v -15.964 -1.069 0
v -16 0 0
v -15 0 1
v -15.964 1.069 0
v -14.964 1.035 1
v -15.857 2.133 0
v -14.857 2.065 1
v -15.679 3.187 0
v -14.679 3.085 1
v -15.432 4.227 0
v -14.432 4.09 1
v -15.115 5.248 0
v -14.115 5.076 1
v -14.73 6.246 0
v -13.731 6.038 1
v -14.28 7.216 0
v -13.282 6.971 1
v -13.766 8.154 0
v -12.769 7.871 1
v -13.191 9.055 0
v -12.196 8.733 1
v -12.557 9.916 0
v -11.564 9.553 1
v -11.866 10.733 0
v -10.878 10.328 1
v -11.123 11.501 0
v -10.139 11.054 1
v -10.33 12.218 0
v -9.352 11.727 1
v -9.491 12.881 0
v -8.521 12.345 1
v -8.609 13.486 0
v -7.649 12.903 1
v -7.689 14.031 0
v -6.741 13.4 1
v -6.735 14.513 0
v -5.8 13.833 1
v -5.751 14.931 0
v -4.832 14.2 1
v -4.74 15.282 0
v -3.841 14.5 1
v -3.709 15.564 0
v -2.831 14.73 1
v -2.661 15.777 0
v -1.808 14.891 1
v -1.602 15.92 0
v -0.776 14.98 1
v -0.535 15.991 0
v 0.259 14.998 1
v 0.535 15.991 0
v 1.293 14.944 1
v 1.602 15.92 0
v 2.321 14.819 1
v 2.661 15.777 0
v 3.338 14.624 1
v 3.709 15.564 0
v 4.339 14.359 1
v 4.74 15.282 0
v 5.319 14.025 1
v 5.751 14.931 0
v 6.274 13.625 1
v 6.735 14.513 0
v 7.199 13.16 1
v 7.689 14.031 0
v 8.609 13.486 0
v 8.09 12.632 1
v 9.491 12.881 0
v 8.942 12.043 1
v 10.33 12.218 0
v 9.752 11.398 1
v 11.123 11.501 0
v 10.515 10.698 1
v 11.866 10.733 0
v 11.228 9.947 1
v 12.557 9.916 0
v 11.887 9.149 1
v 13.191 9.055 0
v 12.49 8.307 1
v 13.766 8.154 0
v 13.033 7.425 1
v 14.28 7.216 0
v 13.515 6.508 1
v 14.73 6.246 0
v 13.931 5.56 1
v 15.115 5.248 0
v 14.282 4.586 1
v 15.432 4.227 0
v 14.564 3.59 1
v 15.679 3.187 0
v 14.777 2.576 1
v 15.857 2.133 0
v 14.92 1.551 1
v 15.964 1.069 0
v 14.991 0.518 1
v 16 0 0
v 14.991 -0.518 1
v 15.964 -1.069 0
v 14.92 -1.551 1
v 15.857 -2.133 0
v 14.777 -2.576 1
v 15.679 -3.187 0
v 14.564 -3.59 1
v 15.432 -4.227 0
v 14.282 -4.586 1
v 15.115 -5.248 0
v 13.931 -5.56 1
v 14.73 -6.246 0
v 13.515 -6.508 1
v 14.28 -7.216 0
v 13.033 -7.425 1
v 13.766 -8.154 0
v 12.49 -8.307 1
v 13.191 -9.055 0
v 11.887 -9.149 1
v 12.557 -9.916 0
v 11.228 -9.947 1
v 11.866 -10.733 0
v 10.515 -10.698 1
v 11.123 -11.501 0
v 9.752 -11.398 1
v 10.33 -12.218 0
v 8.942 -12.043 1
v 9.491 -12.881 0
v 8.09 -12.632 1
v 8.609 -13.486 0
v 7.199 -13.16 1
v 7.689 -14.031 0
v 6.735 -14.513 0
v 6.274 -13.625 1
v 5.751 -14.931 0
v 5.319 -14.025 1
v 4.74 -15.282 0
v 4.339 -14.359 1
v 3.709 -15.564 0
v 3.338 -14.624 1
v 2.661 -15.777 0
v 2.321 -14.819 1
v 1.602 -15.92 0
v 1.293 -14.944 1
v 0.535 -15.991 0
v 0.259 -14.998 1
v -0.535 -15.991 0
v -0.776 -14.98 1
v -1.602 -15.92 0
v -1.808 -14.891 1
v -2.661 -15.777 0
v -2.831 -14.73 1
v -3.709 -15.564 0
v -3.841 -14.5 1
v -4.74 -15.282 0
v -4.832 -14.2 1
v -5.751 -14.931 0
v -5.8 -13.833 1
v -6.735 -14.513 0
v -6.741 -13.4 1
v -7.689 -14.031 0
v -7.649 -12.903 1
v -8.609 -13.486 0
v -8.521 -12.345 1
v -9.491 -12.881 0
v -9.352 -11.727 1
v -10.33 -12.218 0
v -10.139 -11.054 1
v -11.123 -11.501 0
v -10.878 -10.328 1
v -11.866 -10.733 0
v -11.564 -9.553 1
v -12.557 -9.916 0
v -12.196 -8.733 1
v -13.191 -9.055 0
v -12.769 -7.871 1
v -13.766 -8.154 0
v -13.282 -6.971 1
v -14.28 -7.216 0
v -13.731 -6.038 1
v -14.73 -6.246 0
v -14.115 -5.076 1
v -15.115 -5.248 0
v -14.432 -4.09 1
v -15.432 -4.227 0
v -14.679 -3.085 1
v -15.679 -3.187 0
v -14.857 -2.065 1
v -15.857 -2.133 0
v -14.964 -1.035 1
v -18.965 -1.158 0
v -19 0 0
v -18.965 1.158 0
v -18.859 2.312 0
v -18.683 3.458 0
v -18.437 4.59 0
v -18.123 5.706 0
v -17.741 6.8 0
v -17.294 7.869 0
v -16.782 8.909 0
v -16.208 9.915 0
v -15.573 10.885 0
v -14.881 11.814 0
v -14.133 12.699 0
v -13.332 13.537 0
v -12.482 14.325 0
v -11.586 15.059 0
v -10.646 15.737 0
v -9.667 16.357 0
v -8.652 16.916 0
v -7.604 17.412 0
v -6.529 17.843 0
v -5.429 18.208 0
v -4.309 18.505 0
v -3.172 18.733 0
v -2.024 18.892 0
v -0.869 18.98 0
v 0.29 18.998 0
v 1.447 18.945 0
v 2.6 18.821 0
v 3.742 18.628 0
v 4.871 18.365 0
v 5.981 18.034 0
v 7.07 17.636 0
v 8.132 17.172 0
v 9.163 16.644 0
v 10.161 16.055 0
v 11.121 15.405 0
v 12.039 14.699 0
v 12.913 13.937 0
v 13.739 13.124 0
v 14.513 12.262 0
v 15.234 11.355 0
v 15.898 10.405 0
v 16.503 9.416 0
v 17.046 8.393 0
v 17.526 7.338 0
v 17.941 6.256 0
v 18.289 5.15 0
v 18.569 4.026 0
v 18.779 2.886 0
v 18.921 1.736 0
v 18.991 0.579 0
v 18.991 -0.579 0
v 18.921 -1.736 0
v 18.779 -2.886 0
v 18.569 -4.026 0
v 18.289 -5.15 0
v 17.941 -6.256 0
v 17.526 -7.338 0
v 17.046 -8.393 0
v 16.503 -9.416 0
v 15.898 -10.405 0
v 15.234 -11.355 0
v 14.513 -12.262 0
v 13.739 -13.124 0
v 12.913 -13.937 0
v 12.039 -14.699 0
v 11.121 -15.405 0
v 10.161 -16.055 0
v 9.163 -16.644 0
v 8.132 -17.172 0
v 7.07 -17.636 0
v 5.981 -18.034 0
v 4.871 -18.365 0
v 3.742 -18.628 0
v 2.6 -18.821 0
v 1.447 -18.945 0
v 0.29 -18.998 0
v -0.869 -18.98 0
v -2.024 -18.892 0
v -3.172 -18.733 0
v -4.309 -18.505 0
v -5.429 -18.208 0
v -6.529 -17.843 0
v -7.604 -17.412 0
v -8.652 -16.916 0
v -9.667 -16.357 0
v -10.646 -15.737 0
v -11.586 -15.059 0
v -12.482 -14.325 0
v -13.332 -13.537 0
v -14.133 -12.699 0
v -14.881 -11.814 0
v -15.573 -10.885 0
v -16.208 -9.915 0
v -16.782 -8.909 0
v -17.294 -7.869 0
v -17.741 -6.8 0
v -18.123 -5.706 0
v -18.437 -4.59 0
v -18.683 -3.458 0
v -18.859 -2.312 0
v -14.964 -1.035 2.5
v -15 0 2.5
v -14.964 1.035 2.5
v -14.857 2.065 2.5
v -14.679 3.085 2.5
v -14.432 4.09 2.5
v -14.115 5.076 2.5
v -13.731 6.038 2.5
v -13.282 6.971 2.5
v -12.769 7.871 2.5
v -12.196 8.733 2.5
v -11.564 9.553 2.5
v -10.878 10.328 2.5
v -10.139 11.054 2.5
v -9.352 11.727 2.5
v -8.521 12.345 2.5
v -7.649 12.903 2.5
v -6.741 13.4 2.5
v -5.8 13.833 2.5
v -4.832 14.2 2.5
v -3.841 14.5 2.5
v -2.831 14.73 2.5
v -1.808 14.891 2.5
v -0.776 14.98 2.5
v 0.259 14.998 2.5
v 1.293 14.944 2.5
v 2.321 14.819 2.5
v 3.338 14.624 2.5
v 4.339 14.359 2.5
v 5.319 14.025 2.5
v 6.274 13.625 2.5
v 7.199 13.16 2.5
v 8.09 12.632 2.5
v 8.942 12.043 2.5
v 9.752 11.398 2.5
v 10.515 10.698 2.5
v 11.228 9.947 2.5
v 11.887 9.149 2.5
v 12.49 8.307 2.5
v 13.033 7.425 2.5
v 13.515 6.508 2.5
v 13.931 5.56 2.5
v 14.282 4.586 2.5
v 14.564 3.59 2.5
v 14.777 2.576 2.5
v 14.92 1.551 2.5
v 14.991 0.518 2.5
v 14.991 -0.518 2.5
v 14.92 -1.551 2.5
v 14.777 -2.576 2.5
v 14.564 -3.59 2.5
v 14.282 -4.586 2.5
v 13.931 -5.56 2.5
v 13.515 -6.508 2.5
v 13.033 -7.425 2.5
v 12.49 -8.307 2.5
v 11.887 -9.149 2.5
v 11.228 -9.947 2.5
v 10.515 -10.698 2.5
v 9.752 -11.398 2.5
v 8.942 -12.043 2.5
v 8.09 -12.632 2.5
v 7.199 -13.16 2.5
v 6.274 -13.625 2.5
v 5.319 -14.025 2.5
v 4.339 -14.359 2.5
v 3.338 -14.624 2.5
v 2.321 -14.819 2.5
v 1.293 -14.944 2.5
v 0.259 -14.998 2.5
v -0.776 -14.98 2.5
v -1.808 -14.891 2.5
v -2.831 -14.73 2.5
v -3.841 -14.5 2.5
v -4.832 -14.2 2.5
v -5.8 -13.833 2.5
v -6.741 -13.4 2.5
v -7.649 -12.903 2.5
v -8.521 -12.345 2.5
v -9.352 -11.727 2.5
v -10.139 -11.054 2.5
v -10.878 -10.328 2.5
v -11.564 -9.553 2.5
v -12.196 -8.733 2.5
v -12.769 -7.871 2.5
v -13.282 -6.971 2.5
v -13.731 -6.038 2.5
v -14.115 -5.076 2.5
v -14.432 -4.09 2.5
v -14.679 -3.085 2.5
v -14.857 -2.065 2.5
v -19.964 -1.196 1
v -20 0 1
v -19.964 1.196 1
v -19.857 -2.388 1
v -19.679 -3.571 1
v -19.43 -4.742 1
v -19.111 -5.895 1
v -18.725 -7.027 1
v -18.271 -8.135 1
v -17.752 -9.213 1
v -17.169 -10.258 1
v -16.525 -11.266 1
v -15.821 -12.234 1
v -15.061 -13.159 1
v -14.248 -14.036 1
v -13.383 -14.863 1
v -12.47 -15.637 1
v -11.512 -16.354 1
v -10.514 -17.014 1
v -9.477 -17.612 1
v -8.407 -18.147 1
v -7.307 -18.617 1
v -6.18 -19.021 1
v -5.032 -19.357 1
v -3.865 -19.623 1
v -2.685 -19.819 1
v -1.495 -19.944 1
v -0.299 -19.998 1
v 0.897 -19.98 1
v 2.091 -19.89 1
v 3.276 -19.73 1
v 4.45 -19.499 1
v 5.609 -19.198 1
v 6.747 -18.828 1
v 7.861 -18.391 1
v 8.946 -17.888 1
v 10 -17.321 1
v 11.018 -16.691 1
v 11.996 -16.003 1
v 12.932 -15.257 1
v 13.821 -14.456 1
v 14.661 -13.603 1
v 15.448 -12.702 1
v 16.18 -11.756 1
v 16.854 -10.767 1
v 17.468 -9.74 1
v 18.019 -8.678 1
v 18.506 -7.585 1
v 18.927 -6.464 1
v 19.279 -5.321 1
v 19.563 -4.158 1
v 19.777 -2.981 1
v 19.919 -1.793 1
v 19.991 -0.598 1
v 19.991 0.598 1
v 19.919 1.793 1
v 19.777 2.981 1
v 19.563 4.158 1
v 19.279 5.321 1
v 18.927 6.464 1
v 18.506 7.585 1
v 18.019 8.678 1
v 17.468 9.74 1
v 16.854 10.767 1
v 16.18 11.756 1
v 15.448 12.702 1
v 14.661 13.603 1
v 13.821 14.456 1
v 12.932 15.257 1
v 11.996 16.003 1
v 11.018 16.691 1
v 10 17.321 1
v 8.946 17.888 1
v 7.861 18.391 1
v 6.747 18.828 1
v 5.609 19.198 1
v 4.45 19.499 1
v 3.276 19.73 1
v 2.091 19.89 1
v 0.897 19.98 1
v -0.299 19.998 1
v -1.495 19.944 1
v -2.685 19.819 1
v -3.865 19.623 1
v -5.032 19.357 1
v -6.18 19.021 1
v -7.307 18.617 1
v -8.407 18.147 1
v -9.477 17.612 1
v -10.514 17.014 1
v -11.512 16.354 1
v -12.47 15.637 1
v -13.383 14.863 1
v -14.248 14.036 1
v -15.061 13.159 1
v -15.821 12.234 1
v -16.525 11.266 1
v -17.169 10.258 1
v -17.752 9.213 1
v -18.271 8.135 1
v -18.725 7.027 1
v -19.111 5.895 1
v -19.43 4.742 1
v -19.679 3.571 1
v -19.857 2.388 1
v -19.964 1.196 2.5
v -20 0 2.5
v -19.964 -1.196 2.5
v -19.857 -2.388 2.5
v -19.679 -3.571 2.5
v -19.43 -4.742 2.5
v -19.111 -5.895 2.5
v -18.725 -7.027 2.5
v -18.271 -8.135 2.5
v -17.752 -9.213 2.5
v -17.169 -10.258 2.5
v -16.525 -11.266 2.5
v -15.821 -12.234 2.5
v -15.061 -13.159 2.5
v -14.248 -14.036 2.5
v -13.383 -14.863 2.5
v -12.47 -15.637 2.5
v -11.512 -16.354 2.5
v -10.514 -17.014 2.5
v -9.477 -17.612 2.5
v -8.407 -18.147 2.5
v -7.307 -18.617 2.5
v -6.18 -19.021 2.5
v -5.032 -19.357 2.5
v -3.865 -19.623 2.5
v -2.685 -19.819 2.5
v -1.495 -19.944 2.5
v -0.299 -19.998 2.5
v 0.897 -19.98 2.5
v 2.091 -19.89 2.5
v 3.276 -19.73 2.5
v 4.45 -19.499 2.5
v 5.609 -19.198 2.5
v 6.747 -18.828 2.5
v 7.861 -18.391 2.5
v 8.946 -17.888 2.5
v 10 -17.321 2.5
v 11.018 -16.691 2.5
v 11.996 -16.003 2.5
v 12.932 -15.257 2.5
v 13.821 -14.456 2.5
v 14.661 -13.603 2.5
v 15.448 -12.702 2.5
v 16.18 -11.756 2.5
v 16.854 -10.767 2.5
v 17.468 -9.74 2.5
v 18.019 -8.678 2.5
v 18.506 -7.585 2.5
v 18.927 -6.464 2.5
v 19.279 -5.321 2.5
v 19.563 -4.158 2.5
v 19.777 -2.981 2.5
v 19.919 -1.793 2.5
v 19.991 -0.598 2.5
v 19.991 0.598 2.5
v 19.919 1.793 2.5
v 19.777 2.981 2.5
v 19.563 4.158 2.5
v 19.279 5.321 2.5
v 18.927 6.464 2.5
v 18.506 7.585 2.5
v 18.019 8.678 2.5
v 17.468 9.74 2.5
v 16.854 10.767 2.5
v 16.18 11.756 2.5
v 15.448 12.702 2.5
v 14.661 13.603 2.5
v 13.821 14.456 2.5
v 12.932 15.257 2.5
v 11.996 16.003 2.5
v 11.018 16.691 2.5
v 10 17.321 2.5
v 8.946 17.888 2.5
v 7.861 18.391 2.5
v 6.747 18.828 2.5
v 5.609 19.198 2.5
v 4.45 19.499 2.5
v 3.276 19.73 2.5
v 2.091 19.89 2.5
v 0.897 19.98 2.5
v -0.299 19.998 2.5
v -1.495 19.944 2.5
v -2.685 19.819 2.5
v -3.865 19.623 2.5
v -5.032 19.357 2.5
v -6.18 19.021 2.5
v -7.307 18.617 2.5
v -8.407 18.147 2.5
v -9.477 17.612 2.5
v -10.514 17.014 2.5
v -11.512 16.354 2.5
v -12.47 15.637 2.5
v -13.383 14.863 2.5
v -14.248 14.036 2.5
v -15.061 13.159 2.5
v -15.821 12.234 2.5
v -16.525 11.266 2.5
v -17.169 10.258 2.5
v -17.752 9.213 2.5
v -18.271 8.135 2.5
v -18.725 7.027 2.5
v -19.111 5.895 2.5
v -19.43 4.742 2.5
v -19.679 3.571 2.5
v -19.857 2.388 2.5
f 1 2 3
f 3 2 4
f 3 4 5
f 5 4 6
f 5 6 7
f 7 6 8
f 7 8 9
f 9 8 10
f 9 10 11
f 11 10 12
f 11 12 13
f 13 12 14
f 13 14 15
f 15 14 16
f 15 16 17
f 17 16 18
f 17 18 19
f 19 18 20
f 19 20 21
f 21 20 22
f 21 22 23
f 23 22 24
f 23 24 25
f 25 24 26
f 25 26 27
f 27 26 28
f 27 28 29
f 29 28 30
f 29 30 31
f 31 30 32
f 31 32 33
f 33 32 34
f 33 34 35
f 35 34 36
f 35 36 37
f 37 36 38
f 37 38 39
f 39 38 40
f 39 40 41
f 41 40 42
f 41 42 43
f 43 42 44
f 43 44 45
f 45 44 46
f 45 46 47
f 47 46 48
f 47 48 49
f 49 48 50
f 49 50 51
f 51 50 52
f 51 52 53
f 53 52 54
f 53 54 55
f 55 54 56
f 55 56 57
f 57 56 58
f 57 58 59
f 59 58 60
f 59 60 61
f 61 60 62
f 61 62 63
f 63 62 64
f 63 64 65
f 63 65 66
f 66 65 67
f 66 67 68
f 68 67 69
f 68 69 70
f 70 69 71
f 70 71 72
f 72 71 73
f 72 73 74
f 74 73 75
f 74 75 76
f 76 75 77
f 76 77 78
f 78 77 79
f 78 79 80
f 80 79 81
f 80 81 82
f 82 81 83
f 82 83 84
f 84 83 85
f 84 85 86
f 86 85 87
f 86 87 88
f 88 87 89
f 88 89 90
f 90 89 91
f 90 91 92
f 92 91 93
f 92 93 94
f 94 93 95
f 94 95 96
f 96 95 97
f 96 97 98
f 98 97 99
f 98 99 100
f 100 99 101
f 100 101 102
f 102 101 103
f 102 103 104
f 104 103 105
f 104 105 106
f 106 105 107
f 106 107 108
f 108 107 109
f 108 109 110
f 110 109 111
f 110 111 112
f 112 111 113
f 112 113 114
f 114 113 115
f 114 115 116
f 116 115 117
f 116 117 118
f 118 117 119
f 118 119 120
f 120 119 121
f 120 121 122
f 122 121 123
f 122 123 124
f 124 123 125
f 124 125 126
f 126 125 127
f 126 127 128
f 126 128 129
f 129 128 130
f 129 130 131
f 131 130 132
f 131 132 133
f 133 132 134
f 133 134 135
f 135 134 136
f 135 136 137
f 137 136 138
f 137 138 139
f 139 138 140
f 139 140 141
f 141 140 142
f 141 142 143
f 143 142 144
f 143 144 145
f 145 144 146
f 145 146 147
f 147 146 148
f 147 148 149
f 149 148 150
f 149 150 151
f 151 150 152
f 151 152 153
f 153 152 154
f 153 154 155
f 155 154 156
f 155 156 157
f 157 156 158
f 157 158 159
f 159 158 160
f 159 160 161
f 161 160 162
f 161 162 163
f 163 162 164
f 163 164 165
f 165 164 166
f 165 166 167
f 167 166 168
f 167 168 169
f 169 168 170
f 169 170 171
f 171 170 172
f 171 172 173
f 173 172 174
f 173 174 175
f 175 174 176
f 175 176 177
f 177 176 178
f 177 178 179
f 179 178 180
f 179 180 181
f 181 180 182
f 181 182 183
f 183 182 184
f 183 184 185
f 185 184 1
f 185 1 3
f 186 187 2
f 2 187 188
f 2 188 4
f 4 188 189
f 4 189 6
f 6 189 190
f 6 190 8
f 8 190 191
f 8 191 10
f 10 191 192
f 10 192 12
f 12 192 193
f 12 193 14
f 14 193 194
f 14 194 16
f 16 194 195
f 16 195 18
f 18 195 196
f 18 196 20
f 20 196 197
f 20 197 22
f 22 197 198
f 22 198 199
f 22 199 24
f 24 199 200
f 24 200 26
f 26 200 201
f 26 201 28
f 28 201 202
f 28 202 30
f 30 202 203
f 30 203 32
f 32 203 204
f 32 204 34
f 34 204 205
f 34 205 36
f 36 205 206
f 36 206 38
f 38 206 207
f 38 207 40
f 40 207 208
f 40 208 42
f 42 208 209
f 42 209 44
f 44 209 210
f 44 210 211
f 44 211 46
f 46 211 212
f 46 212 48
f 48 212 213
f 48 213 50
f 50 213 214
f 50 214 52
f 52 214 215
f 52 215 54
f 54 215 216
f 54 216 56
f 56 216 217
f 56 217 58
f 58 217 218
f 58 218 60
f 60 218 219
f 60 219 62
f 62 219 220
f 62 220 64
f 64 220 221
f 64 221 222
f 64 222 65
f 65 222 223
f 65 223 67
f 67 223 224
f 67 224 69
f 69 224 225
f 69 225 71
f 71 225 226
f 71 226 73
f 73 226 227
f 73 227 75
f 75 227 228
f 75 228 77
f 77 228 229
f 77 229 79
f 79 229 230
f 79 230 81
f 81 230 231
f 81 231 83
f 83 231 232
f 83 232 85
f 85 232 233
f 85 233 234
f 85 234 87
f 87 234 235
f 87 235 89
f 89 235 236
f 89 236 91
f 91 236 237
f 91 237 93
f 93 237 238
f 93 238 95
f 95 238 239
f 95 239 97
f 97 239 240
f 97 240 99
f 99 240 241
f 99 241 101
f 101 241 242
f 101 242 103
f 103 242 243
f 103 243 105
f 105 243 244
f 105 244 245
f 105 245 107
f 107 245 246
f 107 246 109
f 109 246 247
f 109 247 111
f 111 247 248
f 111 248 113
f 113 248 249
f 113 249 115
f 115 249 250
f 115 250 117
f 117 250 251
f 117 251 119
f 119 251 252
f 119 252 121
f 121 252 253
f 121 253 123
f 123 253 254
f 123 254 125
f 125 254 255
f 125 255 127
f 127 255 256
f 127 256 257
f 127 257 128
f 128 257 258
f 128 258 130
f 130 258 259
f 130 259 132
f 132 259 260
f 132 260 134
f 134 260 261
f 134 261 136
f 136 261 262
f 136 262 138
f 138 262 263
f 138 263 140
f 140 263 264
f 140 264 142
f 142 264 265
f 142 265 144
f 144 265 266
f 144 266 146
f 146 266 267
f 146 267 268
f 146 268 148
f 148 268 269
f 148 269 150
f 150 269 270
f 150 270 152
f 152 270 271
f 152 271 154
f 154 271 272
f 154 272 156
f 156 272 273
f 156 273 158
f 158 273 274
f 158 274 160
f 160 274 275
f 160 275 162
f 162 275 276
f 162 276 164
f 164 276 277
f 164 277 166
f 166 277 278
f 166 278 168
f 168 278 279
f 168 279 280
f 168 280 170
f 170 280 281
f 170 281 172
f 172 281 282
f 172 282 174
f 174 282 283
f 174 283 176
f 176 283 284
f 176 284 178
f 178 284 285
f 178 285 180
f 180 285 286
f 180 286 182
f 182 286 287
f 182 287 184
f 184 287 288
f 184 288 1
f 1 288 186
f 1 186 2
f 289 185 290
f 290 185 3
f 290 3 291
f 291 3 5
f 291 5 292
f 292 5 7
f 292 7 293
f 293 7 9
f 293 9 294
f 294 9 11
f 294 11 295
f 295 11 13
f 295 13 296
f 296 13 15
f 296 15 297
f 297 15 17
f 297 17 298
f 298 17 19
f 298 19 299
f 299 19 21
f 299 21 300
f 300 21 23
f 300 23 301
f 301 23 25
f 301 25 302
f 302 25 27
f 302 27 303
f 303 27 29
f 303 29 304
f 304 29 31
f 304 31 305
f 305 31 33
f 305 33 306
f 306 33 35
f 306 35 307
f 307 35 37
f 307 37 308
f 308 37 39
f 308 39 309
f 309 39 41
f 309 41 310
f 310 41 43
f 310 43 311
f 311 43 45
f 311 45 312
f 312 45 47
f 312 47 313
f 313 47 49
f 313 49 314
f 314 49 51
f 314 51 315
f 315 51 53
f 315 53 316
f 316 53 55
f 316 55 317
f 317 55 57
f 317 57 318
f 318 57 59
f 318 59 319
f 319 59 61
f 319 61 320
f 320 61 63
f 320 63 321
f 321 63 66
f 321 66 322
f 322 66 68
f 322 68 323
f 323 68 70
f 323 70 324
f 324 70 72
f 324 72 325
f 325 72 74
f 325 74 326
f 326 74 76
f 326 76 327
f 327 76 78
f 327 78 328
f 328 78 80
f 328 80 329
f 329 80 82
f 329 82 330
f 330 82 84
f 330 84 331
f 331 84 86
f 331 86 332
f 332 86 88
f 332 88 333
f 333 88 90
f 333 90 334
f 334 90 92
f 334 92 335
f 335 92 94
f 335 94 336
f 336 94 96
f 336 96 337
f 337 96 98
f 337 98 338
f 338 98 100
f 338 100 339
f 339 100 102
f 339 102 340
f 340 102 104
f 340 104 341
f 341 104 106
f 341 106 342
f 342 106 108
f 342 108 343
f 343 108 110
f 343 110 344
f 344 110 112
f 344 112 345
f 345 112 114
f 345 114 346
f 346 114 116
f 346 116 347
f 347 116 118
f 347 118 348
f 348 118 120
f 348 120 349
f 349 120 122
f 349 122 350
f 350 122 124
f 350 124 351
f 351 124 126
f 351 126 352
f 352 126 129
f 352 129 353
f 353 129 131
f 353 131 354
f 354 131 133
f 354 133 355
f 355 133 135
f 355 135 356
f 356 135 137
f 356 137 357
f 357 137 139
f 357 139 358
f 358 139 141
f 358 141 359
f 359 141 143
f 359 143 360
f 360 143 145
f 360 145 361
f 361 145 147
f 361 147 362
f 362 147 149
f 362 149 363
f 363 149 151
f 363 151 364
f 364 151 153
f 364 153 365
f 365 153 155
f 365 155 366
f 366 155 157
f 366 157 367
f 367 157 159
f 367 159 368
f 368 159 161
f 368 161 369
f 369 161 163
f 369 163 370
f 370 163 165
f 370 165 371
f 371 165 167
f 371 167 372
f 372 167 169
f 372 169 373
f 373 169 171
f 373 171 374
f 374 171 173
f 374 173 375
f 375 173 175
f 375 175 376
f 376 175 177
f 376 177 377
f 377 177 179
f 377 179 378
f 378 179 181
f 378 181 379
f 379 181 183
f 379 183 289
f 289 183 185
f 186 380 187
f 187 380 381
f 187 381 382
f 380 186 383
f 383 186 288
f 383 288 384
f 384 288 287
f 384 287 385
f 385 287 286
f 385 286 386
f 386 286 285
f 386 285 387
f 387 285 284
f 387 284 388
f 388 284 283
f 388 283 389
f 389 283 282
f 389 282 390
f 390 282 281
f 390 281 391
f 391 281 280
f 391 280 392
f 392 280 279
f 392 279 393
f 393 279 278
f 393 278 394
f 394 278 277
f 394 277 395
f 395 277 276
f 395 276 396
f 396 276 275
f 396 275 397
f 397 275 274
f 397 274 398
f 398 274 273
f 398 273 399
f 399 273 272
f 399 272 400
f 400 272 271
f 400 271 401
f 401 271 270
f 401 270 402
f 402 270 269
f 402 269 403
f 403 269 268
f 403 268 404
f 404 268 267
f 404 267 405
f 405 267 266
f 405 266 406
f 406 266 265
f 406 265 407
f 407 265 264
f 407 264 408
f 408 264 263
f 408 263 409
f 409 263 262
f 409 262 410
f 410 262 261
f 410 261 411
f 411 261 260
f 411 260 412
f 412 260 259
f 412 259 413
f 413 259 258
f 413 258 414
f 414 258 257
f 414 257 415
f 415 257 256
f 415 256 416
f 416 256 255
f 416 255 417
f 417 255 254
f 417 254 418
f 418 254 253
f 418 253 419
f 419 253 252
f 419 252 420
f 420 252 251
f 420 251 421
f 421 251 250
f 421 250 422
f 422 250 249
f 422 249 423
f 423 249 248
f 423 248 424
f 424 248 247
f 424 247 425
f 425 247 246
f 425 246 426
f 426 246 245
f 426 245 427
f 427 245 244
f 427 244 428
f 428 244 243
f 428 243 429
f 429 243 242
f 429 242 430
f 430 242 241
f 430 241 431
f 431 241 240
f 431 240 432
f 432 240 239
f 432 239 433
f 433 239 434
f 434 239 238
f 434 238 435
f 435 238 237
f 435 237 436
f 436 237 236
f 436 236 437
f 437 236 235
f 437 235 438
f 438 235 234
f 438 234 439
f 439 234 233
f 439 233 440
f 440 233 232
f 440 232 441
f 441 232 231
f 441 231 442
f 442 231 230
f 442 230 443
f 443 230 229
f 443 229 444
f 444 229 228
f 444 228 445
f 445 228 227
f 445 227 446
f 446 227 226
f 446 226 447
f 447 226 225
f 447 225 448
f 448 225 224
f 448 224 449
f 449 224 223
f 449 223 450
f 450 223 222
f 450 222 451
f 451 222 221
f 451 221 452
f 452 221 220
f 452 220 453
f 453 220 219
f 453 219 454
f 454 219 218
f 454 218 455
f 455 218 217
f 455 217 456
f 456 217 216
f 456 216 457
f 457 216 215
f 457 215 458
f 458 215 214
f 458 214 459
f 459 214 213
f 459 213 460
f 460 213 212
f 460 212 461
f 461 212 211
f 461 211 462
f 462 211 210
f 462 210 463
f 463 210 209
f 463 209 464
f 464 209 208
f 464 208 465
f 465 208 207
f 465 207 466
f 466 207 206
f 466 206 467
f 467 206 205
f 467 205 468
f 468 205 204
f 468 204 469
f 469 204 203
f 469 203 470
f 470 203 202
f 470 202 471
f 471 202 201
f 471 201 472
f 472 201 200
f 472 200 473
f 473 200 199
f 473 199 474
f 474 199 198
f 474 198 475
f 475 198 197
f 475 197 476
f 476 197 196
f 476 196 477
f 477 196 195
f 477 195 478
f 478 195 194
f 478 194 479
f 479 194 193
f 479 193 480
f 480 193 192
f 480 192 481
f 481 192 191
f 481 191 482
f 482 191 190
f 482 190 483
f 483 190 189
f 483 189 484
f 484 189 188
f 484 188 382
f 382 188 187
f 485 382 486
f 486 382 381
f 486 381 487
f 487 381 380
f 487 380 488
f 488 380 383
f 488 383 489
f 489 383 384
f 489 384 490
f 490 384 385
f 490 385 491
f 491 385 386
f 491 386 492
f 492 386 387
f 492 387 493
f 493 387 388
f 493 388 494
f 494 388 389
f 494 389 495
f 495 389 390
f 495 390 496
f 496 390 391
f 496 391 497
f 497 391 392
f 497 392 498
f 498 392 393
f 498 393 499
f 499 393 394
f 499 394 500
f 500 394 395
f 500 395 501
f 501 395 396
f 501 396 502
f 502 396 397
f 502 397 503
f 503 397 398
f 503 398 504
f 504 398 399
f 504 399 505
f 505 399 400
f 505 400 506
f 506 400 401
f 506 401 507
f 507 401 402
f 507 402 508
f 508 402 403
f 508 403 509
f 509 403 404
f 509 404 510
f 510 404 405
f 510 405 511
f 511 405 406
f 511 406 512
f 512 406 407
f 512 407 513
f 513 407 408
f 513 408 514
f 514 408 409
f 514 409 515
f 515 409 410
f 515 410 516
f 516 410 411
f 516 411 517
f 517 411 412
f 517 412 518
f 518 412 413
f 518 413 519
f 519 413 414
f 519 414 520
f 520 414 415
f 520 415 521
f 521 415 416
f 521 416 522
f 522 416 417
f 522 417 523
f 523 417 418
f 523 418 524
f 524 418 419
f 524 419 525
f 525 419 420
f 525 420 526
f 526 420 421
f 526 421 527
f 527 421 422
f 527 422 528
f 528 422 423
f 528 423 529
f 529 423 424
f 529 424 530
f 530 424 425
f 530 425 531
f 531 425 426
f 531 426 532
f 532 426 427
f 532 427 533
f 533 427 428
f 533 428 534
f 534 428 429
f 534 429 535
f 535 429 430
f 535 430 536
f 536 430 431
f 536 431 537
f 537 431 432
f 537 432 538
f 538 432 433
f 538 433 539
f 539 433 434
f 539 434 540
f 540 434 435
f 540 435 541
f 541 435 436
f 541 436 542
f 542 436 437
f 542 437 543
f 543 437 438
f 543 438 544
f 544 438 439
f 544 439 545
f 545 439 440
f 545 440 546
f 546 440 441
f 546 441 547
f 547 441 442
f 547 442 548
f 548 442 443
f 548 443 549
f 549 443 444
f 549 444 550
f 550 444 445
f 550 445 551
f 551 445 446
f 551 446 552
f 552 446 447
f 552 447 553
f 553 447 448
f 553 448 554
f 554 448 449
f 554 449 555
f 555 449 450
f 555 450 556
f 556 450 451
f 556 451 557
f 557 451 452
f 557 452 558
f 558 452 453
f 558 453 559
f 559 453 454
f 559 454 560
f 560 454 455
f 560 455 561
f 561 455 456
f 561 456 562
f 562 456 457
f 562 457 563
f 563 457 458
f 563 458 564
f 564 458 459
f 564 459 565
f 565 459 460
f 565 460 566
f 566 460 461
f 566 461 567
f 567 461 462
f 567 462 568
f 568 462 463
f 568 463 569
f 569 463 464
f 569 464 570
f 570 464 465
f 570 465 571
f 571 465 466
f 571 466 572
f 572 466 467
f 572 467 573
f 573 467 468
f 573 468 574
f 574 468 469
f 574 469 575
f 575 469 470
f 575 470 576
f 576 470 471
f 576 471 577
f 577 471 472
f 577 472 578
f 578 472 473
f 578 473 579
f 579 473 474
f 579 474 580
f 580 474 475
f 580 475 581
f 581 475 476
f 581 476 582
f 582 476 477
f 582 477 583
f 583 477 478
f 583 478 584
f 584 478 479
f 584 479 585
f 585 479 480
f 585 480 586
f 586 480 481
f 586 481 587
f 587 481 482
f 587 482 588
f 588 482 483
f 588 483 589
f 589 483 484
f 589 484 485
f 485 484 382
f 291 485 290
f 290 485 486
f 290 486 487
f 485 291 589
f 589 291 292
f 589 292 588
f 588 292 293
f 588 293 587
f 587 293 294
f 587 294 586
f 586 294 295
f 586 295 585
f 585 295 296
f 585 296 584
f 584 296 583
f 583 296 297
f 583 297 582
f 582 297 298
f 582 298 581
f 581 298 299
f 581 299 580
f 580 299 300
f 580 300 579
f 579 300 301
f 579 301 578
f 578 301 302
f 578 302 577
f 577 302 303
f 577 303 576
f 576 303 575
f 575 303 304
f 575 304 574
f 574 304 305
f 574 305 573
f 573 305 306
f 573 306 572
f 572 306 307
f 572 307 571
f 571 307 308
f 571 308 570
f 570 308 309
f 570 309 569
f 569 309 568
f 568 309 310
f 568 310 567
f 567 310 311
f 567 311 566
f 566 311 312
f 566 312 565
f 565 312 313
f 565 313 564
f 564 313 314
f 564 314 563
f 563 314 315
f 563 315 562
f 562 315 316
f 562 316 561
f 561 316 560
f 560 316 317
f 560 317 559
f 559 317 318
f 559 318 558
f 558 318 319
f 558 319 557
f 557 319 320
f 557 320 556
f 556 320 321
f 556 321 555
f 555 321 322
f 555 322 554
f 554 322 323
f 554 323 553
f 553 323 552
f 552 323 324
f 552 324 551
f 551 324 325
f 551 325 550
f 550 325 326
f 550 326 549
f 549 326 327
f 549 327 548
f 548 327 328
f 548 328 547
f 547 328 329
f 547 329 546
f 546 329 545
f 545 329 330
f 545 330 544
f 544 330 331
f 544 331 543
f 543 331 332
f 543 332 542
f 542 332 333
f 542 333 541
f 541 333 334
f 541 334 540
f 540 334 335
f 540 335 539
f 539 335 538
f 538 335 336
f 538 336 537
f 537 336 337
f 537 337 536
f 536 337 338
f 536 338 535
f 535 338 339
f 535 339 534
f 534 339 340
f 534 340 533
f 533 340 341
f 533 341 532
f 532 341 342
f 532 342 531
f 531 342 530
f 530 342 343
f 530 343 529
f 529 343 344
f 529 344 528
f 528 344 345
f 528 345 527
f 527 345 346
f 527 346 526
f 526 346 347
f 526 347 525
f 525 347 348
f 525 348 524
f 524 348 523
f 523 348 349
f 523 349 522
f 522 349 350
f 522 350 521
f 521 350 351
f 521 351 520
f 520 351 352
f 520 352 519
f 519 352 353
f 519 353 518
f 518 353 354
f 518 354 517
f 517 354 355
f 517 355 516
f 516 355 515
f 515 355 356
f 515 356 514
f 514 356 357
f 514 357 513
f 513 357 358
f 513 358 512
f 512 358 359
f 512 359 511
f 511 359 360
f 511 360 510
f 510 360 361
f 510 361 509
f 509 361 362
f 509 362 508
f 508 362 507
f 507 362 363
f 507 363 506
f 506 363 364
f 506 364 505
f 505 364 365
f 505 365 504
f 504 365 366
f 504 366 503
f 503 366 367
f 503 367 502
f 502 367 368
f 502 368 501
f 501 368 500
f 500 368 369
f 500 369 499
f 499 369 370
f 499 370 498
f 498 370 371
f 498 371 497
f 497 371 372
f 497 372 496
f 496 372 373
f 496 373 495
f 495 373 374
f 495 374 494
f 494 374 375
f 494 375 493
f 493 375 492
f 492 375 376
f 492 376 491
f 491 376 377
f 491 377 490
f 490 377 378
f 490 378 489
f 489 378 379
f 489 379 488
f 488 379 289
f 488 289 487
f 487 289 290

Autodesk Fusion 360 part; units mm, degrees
sketch "Sketch1" plane through (0, 0, 0) normal (0, 0, 1) x (1, 0, 0)
  circle A0 centre (0, 0) radius 20
  circle A1 centre (0, 0) radius 15
  dimension "d1" = 40
  dimension "d2" = 30
extrude "Extrude1" add sketch "Sketch1" along normal blind 2.5
chamfer "Chamfer1" distance 1 angle 45 1 edges at (-18.6465, -7.2323, 0)
chamfer "Chamfer2" distance 1 angle 45 1 edges at (-13.9849, 5.4242, 0)
